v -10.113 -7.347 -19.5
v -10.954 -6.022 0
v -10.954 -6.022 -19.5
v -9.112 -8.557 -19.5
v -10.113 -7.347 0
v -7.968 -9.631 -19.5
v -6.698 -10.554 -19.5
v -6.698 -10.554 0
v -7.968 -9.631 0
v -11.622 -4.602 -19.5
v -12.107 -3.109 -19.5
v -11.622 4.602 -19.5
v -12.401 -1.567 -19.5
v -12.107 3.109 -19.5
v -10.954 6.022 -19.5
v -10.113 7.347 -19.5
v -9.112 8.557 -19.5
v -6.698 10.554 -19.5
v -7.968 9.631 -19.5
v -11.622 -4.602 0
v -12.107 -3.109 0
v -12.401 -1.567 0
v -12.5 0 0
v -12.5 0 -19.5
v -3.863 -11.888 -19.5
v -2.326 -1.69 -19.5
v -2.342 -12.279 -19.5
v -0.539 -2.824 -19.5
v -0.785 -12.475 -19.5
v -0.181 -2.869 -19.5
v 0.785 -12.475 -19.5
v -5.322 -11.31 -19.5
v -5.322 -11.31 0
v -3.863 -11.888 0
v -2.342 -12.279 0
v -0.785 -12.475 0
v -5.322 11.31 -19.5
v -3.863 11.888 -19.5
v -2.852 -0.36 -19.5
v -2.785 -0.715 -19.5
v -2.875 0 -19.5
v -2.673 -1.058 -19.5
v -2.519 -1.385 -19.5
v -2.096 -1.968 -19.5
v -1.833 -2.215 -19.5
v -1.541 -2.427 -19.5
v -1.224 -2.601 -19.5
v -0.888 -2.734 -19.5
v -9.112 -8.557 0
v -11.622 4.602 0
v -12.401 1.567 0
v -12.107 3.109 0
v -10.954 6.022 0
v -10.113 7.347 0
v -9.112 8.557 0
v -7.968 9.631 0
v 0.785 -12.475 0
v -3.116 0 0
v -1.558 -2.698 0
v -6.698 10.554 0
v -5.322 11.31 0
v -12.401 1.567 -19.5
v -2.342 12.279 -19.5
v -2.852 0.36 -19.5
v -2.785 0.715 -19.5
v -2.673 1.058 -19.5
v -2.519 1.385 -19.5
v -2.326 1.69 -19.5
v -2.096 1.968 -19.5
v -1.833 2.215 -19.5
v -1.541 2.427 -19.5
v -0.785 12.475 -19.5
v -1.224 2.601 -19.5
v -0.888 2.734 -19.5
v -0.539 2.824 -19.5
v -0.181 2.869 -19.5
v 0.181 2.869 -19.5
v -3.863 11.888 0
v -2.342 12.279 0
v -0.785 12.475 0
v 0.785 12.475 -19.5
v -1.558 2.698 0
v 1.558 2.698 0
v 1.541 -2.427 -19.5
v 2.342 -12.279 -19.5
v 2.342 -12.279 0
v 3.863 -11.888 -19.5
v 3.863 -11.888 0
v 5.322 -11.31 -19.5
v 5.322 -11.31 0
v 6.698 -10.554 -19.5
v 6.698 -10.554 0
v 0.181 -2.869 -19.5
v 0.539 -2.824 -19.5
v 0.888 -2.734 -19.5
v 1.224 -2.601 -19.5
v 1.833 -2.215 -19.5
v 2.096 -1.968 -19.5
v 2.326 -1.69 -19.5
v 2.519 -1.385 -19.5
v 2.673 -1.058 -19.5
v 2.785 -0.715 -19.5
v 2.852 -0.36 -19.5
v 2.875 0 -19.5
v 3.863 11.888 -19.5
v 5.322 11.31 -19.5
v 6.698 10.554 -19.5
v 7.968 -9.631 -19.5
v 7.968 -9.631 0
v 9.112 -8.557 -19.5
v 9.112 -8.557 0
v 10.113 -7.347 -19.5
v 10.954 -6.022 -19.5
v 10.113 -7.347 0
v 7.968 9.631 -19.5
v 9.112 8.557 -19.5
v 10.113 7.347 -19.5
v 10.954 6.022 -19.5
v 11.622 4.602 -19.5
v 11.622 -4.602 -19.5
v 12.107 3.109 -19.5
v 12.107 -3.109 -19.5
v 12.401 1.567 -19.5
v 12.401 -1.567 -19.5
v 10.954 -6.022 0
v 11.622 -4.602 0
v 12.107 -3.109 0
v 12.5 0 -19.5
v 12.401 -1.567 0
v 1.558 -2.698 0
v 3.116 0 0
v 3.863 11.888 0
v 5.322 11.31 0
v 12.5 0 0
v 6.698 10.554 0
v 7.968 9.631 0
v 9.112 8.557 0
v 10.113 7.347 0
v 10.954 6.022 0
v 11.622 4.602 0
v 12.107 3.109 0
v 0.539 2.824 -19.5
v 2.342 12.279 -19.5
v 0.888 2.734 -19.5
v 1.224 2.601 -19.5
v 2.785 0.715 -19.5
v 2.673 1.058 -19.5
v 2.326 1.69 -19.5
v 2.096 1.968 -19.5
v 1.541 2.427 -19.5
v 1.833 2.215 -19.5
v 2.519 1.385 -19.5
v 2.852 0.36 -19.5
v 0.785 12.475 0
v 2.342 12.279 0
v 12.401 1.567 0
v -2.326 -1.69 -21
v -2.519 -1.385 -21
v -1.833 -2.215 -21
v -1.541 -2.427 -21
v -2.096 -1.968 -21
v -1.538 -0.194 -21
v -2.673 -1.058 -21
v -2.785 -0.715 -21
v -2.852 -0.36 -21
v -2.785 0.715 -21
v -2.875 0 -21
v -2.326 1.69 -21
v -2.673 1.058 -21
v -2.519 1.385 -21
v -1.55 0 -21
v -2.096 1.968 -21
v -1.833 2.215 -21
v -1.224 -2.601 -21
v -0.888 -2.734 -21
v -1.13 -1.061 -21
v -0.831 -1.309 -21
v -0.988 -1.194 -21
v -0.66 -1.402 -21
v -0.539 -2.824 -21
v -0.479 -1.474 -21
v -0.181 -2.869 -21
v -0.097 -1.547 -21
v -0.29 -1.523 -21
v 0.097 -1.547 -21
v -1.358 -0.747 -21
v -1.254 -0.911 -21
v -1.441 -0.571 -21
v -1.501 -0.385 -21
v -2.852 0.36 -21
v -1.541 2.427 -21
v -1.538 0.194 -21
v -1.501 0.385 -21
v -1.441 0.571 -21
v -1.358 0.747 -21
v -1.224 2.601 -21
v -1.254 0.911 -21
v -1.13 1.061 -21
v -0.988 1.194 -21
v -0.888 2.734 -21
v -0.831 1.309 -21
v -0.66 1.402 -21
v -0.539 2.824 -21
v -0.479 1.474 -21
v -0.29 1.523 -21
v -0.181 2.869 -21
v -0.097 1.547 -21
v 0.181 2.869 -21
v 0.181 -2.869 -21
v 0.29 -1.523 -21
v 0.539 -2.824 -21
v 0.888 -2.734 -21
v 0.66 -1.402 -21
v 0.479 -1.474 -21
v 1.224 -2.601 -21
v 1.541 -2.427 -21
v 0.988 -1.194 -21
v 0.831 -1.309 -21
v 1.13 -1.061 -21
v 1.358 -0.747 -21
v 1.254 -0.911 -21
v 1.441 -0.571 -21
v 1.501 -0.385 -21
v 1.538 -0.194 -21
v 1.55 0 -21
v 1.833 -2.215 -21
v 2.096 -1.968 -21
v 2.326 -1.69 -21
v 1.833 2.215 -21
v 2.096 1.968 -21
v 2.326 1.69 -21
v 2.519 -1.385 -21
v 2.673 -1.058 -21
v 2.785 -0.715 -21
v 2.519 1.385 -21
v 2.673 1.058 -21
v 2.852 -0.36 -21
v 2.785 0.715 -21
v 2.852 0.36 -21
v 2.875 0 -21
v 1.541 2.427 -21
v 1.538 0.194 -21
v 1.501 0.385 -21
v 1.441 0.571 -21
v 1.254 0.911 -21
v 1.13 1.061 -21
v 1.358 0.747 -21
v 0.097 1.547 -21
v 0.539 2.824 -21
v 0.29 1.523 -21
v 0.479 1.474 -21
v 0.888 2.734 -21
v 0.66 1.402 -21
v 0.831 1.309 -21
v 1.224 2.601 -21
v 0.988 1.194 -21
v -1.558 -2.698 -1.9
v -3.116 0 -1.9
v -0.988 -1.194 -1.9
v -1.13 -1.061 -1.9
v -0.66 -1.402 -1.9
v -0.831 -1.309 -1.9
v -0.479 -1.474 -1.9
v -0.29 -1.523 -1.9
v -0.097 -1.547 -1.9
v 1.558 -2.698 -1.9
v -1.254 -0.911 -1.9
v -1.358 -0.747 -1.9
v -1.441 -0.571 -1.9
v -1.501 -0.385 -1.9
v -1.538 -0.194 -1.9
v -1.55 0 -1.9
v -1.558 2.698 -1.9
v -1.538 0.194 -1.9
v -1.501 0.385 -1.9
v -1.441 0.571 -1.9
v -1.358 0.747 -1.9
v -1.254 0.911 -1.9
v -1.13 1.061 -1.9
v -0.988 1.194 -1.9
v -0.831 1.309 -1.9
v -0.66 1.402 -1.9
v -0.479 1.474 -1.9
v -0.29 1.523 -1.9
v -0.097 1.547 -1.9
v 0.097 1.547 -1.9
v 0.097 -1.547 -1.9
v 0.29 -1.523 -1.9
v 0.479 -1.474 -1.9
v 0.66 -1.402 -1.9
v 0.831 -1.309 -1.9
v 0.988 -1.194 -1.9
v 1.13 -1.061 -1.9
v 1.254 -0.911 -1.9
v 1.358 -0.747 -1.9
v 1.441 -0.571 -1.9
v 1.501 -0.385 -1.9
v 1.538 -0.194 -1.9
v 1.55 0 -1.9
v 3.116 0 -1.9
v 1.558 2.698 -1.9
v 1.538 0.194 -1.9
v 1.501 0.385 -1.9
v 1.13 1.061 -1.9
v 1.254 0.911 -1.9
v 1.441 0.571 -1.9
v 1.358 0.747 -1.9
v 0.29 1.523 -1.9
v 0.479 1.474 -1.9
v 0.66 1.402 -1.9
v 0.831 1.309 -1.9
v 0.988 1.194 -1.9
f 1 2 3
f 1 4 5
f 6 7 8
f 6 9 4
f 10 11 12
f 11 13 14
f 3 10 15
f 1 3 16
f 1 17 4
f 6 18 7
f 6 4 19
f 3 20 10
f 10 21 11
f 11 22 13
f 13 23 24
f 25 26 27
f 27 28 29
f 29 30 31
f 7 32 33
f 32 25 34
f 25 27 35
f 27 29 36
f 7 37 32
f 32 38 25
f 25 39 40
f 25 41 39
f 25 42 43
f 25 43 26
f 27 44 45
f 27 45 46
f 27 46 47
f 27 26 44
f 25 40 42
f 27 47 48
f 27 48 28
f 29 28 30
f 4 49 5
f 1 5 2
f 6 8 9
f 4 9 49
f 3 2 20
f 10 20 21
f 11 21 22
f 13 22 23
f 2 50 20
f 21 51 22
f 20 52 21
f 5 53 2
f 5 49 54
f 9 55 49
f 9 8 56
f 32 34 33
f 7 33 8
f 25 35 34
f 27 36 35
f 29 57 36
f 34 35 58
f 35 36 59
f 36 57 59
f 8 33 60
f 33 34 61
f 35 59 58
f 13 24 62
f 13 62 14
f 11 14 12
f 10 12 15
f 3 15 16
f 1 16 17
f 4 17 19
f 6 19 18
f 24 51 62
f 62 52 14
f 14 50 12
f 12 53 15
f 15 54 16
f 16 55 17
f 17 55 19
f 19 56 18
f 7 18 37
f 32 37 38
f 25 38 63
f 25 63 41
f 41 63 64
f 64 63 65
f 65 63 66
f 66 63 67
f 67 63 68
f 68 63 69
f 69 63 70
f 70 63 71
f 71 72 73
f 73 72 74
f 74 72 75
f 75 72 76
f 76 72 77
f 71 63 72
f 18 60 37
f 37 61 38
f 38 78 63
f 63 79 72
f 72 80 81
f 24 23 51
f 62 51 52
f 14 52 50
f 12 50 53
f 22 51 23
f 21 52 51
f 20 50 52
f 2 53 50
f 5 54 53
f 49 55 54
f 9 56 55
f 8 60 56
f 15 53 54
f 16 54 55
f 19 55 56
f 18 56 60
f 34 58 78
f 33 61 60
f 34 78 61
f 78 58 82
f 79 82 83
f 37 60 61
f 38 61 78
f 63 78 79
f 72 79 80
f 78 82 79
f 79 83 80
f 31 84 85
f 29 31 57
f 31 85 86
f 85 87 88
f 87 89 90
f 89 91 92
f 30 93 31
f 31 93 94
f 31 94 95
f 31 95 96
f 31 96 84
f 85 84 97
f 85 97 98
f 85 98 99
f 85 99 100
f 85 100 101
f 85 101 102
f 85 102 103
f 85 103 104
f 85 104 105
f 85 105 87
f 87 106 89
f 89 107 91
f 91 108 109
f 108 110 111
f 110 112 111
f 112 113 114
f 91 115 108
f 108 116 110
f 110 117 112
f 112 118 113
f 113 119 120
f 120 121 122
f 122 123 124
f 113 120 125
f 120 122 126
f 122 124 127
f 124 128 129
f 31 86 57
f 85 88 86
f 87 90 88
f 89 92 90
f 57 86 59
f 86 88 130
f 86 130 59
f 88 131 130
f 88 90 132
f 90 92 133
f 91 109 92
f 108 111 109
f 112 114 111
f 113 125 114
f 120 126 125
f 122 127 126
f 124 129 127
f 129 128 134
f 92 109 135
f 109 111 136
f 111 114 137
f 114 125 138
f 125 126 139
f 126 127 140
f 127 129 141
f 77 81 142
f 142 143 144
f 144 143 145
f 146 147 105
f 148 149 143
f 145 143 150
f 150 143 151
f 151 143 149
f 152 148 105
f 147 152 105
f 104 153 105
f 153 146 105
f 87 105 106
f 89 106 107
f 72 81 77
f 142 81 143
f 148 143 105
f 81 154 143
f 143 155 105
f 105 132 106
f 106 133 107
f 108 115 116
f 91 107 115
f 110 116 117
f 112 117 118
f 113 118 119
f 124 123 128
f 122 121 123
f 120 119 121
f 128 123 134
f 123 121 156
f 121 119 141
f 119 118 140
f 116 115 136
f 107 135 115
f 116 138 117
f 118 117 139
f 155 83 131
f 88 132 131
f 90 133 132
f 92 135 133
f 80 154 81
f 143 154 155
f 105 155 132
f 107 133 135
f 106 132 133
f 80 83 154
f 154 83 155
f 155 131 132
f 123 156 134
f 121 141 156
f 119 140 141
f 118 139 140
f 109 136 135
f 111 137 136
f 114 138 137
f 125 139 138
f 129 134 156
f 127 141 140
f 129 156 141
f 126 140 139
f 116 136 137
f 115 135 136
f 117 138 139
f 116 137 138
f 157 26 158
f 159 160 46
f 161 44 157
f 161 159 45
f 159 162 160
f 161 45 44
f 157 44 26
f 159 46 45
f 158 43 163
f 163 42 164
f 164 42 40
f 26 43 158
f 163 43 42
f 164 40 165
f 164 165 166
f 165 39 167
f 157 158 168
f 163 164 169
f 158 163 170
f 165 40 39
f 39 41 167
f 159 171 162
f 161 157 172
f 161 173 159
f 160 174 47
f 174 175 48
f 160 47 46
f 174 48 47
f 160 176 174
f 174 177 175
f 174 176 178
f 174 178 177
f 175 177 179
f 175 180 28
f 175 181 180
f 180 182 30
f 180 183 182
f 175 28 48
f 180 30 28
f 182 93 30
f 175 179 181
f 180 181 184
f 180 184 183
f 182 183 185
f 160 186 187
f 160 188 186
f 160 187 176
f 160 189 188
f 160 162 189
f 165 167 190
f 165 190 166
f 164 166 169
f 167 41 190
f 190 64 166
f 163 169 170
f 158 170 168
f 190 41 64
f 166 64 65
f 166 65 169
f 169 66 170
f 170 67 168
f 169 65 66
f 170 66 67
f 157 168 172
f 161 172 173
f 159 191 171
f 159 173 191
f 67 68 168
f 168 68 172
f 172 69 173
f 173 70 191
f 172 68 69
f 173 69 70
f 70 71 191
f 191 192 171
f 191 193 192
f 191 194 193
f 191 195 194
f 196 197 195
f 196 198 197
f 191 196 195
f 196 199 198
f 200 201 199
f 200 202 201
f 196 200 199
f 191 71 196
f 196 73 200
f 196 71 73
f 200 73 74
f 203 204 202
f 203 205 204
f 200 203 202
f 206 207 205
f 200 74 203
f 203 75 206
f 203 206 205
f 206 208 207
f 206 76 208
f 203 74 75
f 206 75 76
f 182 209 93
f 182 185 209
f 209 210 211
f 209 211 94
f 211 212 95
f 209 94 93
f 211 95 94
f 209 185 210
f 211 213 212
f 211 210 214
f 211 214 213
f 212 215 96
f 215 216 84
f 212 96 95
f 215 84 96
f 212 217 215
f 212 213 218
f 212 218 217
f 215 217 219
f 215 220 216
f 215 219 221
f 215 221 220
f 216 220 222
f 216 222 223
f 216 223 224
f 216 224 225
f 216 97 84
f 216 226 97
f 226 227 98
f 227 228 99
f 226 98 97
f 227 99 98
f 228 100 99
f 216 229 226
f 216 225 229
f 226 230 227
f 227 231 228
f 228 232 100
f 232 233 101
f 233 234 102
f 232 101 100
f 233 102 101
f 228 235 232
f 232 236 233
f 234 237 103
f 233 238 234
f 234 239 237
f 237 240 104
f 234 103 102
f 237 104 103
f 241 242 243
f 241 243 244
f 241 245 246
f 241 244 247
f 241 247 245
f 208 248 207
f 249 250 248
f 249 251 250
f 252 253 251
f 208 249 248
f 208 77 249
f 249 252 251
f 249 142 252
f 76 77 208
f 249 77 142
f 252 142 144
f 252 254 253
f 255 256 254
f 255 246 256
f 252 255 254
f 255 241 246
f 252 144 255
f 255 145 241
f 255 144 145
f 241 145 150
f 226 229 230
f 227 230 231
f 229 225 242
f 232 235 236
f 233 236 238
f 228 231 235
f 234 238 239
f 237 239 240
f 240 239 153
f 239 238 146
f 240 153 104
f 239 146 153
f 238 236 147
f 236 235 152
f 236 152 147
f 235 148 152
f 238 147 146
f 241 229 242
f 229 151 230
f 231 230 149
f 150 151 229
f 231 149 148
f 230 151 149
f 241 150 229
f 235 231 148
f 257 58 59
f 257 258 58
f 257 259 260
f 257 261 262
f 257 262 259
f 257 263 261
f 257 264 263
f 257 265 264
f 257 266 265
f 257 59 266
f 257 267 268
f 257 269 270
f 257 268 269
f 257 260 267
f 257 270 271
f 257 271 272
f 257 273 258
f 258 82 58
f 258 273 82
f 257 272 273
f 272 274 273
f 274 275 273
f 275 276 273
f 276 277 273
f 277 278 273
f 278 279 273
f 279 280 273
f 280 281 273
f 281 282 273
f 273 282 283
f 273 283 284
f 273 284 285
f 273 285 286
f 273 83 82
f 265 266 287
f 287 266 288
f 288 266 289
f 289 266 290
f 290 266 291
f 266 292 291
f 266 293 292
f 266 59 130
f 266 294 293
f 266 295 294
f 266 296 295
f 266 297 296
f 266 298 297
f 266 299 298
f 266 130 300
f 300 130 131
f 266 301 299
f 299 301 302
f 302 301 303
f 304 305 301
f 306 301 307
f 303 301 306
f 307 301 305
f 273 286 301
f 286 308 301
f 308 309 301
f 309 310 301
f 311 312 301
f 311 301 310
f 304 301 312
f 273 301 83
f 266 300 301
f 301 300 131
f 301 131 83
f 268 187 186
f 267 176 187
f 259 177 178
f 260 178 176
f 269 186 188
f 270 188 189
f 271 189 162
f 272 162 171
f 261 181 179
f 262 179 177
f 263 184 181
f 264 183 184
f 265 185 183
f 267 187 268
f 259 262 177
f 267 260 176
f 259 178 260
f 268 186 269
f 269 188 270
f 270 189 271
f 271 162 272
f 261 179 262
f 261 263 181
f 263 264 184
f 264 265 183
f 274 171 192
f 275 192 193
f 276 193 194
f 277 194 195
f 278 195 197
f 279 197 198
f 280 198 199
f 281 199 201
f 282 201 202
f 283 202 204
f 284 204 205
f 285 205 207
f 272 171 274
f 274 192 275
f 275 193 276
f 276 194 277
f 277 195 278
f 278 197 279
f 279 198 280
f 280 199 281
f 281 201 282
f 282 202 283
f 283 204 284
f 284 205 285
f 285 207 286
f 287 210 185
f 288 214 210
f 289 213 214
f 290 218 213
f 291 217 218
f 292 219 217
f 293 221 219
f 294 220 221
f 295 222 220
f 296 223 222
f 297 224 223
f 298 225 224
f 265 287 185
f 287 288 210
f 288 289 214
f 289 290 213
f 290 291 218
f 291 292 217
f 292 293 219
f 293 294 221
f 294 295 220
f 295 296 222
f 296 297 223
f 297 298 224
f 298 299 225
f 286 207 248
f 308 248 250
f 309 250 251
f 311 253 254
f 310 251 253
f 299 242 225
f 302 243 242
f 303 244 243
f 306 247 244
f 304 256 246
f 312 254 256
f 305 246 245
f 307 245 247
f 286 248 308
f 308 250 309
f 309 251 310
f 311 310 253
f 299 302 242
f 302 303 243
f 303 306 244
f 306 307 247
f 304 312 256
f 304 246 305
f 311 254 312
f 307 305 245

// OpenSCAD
$fn = 50;

difference() {
	union() {
		translate(v = [0, 0, -19.5]) {
			cylinder(h = 19.5, r = 12.5);
		}
		#translate(v = [0, 0, -21.0]) {
			cylinder(h = 21, r = 2.875);
		}
	}
	union() {
		translate(v = [0, 0, 0]) {
			rotate(a = [0, 0, 0]) {
				difference() {
					union() {
						translate(v = [0, 0, -1.9]) {
							linear_extrude(height = 1.9) {
								polygon(points = [[3.1158, 0.0], [1.5579000000000005, 2.698361953111554], [-1.5578999999999994, 2.6983619531115544], [-3.1158, 3.815754496783323e-16], [-1.5579000000000014, -2.6983619531115535], [1.557899999999998, -2.6983619531115552]]);
							}
						}
					}
					union();
				}
			}
		}
		#translate(v = [0, 0, -100.0]) {
			cylinder(h = 200, r = 1.55);
		}
	}
}
